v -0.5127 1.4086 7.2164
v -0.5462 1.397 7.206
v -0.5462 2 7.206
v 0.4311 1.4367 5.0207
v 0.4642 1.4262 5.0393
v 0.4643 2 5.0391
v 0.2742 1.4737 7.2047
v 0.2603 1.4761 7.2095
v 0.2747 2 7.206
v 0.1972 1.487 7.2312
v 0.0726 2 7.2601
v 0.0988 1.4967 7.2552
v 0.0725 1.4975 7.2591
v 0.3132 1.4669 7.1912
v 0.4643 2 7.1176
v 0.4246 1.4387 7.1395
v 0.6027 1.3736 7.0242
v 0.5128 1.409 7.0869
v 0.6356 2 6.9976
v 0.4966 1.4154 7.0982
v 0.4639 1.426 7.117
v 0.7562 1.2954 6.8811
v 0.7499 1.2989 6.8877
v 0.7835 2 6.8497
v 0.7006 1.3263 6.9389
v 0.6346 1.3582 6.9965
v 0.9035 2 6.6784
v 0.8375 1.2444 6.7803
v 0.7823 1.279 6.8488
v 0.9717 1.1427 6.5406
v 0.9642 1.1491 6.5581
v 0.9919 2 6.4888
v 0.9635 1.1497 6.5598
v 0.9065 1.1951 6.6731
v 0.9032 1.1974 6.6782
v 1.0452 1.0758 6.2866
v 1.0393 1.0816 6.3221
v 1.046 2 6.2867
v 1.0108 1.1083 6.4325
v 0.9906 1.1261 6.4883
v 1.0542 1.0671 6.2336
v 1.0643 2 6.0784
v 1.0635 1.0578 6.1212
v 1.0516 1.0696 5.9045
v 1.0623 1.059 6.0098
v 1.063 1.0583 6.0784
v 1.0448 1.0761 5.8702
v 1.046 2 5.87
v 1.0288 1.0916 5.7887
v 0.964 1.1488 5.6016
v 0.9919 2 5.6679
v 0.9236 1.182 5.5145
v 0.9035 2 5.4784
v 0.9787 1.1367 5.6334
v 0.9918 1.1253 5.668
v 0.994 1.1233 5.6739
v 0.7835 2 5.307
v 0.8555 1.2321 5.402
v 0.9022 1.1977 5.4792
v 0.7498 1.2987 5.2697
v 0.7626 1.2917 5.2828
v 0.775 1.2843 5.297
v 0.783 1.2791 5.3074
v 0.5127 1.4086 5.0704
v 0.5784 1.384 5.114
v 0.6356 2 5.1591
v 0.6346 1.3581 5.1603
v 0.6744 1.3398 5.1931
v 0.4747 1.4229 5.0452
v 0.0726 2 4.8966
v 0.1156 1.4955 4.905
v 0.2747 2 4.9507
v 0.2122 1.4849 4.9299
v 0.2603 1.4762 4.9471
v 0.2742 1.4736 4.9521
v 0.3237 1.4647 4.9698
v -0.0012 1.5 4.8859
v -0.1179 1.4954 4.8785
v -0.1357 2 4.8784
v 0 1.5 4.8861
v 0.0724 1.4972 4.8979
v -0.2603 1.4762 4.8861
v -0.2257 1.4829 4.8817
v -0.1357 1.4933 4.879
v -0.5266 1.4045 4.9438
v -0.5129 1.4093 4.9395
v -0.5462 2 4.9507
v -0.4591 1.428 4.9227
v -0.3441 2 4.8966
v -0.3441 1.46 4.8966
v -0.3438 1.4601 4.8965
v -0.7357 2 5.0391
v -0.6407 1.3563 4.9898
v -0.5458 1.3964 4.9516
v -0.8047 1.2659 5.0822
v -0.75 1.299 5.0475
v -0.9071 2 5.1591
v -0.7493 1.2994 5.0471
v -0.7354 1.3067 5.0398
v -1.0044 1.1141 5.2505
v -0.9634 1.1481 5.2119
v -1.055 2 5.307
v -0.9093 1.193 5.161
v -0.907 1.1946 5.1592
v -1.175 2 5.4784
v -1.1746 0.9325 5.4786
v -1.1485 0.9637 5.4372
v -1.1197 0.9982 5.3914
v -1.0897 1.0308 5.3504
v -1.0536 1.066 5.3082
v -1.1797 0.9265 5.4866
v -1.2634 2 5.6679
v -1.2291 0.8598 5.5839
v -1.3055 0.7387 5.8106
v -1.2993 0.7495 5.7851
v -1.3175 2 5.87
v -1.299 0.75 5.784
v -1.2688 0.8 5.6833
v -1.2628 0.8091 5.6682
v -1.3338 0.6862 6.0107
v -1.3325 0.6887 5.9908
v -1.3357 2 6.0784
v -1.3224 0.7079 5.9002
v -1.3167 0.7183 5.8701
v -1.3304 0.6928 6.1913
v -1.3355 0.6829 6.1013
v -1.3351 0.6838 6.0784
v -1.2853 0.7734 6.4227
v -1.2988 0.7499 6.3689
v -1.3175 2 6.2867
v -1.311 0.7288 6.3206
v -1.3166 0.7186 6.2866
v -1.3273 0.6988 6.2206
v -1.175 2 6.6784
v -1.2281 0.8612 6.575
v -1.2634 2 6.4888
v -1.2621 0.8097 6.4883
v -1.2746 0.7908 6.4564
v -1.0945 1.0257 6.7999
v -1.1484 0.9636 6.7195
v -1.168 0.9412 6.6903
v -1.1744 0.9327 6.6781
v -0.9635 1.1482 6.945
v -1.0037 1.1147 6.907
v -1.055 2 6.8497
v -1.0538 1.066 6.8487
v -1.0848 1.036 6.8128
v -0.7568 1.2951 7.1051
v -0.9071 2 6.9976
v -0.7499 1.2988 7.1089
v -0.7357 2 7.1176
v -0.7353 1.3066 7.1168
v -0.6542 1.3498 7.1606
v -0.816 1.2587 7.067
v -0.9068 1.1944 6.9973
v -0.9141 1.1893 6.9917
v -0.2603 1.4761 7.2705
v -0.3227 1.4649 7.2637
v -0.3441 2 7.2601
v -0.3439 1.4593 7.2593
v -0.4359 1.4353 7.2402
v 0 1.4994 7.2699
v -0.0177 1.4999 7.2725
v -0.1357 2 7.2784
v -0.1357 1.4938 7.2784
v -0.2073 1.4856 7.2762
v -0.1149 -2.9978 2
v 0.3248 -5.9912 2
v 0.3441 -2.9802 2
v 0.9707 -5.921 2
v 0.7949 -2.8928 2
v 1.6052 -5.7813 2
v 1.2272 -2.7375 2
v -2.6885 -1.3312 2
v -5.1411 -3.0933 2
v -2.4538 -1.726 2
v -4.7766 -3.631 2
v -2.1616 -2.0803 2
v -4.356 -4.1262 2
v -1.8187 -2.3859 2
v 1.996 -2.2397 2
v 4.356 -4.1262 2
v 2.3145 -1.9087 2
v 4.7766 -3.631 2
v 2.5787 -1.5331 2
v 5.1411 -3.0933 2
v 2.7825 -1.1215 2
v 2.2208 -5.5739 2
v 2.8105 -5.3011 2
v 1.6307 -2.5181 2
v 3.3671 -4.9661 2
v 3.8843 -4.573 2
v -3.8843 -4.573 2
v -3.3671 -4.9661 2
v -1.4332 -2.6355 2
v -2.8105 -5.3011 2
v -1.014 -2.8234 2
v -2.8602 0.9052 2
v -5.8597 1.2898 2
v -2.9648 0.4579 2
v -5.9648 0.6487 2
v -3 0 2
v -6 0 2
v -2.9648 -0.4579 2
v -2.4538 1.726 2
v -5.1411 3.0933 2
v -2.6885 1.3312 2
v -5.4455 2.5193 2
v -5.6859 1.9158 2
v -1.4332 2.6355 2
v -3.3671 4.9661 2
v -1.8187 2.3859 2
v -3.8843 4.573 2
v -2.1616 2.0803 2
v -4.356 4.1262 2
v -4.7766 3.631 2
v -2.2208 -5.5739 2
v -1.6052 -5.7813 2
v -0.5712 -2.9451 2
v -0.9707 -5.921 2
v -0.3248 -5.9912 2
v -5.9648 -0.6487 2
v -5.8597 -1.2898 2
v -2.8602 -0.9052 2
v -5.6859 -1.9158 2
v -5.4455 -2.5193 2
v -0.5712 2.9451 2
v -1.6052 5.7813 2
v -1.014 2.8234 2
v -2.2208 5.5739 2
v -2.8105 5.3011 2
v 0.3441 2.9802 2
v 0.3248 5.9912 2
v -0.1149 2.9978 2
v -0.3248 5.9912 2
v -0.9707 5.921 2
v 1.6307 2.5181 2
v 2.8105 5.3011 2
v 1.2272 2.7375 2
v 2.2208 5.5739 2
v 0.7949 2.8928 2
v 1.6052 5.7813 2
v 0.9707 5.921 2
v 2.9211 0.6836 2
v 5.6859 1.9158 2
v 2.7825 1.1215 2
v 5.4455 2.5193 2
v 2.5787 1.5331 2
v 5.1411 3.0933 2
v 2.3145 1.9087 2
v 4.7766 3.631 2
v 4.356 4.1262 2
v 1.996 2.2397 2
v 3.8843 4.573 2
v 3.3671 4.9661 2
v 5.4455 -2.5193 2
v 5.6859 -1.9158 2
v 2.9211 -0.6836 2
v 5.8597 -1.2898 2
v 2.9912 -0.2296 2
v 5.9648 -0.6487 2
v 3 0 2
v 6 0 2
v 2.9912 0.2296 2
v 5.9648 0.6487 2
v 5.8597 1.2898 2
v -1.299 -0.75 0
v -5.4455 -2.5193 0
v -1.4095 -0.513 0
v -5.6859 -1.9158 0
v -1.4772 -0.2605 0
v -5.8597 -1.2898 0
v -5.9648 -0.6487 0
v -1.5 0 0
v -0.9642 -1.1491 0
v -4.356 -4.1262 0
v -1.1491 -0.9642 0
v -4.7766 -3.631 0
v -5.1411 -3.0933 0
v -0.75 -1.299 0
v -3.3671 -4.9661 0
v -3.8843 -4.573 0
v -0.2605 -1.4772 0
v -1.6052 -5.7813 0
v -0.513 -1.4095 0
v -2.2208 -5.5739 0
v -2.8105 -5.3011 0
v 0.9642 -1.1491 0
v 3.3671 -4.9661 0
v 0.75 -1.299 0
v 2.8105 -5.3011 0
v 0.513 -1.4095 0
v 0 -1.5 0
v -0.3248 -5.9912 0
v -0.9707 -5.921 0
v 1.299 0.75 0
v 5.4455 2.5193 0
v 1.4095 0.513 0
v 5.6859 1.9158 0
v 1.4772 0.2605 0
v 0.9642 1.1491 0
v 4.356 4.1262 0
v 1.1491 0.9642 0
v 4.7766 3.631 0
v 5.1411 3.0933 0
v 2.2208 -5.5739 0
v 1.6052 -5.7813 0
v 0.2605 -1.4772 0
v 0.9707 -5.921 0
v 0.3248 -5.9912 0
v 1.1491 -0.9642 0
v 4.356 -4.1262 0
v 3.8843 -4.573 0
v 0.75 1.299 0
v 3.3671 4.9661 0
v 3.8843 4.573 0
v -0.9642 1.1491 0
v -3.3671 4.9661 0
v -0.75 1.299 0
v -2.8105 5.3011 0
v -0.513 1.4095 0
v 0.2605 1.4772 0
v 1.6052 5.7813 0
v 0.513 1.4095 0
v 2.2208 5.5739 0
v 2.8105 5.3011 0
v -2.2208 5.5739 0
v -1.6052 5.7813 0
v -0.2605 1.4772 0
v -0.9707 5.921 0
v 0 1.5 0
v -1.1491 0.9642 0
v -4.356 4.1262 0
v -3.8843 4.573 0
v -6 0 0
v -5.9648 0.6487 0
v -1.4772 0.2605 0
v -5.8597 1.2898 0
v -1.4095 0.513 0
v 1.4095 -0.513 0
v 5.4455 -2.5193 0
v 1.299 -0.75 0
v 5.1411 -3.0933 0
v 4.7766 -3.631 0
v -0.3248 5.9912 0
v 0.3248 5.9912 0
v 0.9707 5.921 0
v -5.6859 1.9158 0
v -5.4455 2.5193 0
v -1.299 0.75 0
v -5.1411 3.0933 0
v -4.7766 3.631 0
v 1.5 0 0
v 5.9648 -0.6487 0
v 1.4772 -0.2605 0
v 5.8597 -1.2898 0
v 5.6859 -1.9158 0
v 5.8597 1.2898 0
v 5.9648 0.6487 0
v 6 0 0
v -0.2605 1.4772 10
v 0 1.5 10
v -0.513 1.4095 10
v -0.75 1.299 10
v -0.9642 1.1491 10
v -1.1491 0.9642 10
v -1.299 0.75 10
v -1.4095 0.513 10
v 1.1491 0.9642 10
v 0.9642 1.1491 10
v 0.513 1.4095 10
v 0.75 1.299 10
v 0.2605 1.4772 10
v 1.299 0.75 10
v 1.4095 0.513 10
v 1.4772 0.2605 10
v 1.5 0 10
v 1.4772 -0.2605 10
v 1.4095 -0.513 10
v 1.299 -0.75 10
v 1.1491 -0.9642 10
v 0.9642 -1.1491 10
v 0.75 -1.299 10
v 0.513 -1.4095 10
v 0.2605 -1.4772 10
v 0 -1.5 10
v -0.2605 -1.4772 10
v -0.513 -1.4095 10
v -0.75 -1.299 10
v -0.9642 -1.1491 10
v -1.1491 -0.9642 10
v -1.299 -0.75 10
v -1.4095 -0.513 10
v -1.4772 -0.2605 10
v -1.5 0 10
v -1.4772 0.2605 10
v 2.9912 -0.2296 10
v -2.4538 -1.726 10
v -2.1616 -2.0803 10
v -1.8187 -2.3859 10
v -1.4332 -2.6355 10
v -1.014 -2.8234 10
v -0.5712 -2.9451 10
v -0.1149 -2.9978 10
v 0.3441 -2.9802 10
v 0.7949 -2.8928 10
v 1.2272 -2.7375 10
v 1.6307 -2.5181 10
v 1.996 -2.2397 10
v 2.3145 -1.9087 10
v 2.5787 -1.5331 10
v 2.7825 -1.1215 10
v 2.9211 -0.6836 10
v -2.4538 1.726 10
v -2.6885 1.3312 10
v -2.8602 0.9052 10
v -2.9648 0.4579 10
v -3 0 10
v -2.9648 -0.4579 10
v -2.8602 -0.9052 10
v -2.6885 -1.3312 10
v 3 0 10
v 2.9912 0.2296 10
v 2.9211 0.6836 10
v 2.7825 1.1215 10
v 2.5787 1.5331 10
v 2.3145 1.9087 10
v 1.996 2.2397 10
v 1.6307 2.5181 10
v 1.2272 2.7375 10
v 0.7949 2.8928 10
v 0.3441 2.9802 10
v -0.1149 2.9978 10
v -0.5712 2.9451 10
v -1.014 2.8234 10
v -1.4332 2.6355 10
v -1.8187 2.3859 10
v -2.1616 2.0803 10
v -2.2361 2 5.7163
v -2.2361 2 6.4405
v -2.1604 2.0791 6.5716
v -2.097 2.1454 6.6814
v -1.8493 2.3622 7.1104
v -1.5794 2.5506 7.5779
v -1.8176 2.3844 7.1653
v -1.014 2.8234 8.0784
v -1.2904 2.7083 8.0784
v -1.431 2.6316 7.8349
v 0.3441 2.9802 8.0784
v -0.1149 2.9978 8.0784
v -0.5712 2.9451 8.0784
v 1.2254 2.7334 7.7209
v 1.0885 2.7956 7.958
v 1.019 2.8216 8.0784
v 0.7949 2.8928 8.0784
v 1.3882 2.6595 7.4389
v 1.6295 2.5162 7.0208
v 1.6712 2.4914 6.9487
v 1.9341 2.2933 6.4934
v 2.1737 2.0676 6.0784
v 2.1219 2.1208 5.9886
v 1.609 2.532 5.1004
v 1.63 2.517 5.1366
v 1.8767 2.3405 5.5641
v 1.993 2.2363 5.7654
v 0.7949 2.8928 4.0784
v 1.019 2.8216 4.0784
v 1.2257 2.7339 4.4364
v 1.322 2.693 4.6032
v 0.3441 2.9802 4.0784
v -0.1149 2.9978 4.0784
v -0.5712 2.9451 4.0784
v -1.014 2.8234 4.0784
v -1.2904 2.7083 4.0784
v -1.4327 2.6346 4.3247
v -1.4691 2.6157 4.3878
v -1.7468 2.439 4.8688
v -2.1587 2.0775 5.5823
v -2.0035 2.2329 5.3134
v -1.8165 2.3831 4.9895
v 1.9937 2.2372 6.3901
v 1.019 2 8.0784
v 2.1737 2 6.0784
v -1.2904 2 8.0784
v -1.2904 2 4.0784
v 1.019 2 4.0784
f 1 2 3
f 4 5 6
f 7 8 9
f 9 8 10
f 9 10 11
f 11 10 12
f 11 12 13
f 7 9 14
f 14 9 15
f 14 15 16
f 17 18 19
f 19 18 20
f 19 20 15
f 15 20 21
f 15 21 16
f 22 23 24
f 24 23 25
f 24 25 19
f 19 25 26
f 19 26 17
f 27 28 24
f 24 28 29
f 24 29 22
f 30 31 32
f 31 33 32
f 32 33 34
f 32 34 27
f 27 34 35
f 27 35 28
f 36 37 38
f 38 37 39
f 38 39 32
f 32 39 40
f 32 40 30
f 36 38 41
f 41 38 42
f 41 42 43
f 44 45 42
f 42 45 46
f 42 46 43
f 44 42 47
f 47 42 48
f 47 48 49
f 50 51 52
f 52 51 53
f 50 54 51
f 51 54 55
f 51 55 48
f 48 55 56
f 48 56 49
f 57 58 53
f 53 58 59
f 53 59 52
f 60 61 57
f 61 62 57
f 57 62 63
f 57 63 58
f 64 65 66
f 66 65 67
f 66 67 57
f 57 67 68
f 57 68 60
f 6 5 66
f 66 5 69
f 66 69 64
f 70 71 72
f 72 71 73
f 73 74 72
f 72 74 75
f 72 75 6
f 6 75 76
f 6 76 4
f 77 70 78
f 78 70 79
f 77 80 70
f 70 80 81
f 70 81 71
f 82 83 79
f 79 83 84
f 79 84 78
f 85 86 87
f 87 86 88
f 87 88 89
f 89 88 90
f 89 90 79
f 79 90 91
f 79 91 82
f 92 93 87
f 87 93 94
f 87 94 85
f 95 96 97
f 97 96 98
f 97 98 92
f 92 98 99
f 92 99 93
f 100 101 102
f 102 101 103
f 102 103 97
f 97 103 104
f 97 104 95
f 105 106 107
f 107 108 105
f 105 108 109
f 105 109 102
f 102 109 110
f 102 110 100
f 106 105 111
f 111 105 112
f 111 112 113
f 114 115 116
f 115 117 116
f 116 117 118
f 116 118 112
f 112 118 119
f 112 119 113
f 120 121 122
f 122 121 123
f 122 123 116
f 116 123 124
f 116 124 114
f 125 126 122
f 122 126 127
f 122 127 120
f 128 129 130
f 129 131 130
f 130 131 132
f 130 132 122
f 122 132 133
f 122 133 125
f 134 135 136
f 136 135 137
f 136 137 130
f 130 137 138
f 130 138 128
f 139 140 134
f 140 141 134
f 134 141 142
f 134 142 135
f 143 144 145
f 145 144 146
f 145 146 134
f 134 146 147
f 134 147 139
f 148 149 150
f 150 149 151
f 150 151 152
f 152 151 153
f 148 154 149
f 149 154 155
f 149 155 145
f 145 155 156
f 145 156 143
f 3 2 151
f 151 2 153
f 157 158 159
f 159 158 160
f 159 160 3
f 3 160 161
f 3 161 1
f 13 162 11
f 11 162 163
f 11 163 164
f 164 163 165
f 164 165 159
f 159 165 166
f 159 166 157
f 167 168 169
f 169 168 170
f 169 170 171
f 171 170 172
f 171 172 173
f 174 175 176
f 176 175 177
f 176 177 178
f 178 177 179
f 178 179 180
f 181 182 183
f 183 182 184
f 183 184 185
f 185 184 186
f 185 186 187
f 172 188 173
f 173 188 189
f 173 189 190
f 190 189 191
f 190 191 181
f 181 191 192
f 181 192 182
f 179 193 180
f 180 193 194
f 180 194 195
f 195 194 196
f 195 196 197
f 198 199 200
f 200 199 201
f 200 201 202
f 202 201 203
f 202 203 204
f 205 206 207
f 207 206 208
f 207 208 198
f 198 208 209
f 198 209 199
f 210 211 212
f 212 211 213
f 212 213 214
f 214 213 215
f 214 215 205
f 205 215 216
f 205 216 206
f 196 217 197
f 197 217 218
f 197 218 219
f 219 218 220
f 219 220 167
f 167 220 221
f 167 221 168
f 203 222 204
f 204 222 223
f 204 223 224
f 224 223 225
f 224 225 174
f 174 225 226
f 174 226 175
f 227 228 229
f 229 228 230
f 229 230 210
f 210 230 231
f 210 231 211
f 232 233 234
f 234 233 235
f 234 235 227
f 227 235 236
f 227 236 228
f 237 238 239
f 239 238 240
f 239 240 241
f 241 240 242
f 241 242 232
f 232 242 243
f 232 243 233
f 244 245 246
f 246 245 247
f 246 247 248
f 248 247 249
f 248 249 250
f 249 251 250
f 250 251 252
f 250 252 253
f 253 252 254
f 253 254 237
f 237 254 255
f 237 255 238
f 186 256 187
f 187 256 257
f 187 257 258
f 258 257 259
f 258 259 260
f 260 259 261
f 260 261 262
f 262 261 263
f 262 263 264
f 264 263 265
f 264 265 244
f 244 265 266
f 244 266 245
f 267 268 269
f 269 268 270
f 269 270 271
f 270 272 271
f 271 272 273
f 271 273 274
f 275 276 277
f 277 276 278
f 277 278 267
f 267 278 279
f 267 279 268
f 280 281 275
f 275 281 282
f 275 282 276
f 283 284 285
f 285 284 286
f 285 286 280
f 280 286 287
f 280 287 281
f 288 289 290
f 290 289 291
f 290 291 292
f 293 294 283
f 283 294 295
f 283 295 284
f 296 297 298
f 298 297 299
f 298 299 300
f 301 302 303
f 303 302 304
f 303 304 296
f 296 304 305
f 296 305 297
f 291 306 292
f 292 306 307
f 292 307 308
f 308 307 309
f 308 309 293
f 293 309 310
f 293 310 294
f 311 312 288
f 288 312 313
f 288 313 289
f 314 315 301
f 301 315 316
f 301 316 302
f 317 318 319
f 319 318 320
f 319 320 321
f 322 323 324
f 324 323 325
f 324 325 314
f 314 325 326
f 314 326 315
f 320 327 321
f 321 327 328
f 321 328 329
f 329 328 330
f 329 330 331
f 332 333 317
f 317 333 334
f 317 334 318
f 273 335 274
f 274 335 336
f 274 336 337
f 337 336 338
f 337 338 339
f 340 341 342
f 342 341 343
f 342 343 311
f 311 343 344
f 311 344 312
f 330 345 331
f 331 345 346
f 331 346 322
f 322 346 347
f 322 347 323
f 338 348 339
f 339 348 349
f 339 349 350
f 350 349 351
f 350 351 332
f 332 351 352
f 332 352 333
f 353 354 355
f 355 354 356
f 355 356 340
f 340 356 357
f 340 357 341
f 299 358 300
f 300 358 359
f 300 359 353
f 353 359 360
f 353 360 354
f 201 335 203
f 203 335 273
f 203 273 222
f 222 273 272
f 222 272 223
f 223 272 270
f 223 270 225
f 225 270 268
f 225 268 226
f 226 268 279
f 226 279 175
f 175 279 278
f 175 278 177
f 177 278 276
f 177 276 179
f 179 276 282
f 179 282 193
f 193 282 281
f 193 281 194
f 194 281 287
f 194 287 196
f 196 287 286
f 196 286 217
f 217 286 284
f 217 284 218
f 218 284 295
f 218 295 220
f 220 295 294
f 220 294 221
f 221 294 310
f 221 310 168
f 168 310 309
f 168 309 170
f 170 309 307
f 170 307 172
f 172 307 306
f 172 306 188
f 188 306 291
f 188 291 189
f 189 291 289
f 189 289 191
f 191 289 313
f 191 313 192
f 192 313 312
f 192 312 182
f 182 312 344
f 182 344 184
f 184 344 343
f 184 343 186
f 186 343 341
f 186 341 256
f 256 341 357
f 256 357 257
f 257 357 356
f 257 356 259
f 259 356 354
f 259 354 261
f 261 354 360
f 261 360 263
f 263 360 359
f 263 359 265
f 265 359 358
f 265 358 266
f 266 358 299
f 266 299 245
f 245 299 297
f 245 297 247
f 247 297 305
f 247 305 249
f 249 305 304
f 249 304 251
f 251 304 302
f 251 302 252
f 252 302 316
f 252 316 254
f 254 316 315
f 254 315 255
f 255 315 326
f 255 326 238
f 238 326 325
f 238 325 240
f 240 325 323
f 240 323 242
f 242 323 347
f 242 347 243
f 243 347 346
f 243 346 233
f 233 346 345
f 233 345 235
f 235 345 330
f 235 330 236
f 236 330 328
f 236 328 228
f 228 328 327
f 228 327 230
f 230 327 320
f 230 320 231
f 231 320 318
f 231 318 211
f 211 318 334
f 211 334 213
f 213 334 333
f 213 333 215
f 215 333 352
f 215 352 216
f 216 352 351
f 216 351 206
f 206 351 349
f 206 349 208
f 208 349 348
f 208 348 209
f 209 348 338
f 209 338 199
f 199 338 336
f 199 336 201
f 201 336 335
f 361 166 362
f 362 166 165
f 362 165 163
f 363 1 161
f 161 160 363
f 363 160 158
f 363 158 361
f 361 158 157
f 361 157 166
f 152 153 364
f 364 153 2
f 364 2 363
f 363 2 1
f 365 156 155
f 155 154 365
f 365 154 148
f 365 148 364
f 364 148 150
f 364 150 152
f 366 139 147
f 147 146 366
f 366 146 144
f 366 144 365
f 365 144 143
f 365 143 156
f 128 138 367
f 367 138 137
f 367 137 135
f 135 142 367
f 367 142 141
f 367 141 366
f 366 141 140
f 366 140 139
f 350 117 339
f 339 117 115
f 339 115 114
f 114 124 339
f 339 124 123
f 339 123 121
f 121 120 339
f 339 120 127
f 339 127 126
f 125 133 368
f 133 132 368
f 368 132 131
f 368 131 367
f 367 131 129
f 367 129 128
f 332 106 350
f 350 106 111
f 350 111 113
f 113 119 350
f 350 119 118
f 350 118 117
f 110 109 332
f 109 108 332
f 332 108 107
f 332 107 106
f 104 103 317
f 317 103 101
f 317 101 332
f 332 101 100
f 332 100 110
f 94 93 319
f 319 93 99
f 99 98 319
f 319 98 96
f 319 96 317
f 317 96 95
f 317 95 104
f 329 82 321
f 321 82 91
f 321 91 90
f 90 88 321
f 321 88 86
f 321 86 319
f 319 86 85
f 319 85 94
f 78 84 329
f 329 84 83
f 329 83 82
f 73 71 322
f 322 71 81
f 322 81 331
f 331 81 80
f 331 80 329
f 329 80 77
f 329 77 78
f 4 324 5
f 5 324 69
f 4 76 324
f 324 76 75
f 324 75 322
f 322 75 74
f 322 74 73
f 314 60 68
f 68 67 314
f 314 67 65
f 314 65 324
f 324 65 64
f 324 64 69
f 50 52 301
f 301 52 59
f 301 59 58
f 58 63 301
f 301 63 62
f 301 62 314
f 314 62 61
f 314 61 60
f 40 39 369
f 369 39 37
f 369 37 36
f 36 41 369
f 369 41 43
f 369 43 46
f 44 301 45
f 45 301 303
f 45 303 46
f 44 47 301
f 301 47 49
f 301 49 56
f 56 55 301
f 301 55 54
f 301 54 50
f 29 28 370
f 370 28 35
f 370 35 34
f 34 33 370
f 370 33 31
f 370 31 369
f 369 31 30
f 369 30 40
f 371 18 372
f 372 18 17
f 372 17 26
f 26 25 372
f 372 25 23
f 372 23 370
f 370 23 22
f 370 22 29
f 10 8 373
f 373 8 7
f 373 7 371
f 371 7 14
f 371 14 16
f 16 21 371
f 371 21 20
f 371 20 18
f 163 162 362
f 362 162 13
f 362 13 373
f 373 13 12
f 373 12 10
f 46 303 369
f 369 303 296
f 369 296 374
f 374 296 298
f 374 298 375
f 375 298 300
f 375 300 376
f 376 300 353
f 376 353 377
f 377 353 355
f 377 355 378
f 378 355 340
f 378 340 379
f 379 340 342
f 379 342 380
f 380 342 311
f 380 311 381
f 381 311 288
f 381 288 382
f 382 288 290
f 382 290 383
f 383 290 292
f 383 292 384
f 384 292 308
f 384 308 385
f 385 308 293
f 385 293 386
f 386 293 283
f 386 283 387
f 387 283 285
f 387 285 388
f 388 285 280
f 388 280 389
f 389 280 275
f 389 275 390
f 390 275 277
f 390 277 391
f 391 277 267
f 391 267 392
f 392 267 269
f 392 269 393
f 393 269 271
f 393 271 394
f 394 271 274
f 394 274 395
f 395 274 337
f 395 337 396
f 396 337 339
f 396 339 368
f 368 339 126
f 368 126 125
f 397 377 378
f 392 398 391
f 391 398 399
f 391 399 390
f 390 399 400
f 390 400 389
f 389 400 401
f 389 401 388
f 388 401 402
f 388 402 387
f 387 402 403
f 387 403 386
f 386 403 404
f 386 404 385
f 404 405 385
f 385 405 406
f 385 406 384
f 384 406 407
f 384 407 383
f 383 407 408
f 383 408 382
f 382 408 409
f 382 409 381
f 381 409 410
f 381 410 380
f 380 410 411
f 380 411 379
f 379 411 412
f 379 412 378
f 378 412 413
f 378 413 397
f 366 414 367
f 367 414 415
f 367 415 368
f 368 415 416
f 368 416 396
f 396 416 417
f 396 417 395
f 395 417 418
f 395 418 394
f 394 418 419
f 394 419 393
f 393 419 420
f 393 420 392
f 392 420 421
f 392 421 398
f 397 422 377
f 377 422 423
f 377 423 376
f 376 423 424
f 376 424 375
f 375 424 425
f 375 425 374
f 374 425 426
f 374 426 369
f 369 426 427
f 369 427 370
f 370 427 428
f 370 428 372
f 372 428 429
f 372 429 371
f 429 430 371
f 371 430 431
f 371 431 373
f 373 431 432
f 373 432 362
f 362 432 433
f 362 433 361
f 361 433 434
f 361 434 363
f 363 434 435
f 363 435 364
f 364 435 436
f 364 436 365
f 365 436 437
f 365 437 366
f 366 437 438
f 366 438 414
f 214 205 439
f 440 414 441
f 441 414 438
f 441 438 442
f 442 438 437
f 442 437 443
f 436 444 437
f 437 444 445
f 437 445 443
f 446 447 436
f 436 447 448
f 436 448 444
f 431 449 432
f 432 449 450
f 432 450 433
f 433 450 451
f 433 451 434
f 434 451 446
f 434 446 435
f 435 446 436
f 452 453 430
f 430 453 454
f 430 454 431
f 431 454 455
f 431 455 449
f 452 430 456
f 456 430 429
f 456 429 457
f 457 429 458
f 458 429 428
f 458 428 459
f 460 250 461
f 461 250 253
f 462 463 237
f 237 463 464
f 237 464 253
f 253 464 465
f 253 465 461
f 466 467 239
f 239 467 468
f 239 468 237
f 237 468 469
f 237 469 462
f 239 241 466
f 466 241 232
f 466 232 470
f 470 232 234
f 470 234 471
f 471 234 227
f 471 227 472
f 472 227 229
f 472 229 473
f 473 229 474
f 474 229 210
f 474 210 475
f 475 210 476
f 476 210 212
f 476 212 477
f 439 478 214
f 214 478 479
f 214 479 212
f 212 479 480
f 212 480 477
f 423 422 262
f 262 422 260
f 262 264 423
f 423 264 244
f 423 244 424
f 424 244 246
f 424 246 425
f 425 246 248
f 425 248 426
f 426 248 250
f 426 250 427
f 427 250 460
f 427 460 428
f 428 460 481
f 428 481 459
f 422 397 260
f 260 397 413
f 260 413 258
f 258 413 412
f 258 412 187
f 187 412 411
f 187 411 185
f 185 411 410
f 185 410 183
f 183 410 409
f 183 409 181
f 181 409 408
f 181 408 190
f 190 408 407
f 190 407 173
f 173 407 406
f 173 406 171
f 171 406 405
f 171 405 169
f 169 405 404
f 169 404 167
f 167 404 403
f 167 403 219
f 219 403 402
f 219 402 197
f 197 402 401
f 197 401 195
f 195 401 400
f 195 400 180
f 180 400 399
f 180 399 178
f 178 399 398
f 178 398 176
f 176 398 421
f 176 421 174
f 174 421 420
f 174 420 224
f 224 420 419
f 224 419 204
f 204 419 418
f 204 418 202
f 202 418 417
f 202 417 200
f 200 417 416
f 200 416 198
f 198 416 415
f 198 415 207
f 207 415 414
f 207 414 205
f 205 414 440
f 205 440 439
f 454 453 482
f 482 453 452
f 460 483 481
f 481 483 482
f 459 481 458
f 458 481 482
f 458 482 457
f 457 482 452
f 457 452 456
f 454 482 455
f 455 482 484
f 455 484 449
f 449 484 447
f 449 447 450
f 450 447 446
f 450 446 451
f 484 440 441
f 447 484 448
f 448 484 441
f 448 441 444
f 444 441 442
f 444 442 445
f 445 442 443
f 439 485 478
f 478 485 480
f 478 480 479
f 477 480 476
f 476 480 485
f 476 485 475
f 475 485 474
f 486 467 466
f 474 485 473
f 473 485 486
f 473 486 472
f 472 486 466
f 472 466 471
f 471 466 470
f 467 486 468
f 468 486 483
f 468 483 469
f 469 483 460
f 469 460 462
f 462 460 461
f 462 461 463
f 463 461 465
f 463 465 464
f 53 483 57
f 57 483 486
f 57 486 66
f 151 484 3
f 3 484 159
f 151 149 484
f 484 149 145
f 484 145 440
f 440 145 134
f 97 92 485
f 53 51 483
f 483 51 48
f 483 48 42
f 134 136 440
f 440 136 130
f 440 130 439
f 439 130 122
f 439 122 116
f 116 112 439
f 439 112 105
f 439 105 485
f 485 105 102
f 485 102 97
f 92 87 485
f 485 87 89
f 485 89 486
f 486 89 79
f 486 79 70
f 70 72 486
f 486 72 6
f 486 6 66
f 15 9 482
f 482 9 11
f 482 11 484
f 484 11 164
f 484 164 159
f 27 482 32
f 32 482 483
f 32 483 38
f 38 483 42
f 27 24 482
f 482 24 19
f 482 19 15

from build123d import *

# Parameters (mm, degrees)
SKETCH1_R               = 6
SKETCH1_R_2             = 1.5
BOSS_EXTRUDE1_DEPTH     = 2
SKETCH2_R               = 3
SKETCH2_R_2             = 1.5
BOSS_EXTRUDE2_DEPTH     = 8
CUT_EXTRUDE1_REACH      = 17.362
CUT_EXTRUDE1_END_RADIUS = 1.5
SKETCH3_R               = 1.2
SKETCH3_3_R             = 1.2
CUT_EXTRUDE2_DEPTH      = 2


with BuildPart() as part:
    # Sketch1 → Boss-Extrude1 (new body)
    with BuildSketch(Plane.XY):
        Circle(SKETCH1_R)
        Circle(SKETCH1_R_2, mode=Mode.SUBTRACT)
    extrude(amount=BOSS_EXTRUDE1_DEPTH)

    # Sketch2 → Boss-Extrude2 (add)
    with BuildSketch(Plane.XY.offset(2)):
        Circle(SKETCH2_R)
        Circle(SKETCH2_R_2, mode=Mode.SUBTRACT)
    extrude(amount=BOSS_EXTRUDE2_DEPTH)

    # Cut-Extrude1: up to this cylinder (the profile starts outside it)
    cut_extrude1_end = Plane(origin=(0, 0, 6.078366), z_dir=(0, 0, -1)) * Cylinder(CUT_EXTRUDE1_END_RADIUS, 38.724, mode=Mode.PRIVATE)
    # Sketch3 → Cut-Extrude1 (cut, up to the surface)
    with BuildSketch(Plane(origin=(0, 4, 0), x_dir=(-1, 0, 0), z_dir=(0, 1, 0)), mode=Mode.PRIVATE) as cut_extrude1_sk1:
        with Locations(Location((0.135733681, 6.078365877, 0), (0, 0, 90))):
            Circle(SKETCH3_R)
    cut_extrude1_tool1 = extrude(cut_extrude1_sk1.sketch, amount=-CUT_EXTRUDE1_REACH, mode=Mode.PRIVATE) - cut_extrude1_end
    add(cut_extrude1_tool1.solids().sort_by_distance((-0.135734, 4, 6.078366))[0], mode=Mode.SUBTRACT)

    # Sketch3_3 → Cut-Extrude2 (cut)
    with BuildSketch(Plane(origin=(0, 4, 0), x_dir=(-1, 0, 0), z_dir=(0, 1, 0))):
        Polygon((-2.173667395, 6.078365877), (-1.018966857, 4.078365877), (1.29043422, 4.078365877), (2.445134758, 6.078365877), (1.29043422, 8.078365877), (-1.018966857, 8.078365877), align=None)
        with Locations(Location((0.135733681, 6.078365877, 0), (0, 0, 90))):
            Circle(SKETCH3_3_R, mode=Mode.SUBTRACT)
    extrude(amount=-CUT_EXTRUDE2_DEPTH, mode=Mode.SUBTRACT)


solid = part.part
